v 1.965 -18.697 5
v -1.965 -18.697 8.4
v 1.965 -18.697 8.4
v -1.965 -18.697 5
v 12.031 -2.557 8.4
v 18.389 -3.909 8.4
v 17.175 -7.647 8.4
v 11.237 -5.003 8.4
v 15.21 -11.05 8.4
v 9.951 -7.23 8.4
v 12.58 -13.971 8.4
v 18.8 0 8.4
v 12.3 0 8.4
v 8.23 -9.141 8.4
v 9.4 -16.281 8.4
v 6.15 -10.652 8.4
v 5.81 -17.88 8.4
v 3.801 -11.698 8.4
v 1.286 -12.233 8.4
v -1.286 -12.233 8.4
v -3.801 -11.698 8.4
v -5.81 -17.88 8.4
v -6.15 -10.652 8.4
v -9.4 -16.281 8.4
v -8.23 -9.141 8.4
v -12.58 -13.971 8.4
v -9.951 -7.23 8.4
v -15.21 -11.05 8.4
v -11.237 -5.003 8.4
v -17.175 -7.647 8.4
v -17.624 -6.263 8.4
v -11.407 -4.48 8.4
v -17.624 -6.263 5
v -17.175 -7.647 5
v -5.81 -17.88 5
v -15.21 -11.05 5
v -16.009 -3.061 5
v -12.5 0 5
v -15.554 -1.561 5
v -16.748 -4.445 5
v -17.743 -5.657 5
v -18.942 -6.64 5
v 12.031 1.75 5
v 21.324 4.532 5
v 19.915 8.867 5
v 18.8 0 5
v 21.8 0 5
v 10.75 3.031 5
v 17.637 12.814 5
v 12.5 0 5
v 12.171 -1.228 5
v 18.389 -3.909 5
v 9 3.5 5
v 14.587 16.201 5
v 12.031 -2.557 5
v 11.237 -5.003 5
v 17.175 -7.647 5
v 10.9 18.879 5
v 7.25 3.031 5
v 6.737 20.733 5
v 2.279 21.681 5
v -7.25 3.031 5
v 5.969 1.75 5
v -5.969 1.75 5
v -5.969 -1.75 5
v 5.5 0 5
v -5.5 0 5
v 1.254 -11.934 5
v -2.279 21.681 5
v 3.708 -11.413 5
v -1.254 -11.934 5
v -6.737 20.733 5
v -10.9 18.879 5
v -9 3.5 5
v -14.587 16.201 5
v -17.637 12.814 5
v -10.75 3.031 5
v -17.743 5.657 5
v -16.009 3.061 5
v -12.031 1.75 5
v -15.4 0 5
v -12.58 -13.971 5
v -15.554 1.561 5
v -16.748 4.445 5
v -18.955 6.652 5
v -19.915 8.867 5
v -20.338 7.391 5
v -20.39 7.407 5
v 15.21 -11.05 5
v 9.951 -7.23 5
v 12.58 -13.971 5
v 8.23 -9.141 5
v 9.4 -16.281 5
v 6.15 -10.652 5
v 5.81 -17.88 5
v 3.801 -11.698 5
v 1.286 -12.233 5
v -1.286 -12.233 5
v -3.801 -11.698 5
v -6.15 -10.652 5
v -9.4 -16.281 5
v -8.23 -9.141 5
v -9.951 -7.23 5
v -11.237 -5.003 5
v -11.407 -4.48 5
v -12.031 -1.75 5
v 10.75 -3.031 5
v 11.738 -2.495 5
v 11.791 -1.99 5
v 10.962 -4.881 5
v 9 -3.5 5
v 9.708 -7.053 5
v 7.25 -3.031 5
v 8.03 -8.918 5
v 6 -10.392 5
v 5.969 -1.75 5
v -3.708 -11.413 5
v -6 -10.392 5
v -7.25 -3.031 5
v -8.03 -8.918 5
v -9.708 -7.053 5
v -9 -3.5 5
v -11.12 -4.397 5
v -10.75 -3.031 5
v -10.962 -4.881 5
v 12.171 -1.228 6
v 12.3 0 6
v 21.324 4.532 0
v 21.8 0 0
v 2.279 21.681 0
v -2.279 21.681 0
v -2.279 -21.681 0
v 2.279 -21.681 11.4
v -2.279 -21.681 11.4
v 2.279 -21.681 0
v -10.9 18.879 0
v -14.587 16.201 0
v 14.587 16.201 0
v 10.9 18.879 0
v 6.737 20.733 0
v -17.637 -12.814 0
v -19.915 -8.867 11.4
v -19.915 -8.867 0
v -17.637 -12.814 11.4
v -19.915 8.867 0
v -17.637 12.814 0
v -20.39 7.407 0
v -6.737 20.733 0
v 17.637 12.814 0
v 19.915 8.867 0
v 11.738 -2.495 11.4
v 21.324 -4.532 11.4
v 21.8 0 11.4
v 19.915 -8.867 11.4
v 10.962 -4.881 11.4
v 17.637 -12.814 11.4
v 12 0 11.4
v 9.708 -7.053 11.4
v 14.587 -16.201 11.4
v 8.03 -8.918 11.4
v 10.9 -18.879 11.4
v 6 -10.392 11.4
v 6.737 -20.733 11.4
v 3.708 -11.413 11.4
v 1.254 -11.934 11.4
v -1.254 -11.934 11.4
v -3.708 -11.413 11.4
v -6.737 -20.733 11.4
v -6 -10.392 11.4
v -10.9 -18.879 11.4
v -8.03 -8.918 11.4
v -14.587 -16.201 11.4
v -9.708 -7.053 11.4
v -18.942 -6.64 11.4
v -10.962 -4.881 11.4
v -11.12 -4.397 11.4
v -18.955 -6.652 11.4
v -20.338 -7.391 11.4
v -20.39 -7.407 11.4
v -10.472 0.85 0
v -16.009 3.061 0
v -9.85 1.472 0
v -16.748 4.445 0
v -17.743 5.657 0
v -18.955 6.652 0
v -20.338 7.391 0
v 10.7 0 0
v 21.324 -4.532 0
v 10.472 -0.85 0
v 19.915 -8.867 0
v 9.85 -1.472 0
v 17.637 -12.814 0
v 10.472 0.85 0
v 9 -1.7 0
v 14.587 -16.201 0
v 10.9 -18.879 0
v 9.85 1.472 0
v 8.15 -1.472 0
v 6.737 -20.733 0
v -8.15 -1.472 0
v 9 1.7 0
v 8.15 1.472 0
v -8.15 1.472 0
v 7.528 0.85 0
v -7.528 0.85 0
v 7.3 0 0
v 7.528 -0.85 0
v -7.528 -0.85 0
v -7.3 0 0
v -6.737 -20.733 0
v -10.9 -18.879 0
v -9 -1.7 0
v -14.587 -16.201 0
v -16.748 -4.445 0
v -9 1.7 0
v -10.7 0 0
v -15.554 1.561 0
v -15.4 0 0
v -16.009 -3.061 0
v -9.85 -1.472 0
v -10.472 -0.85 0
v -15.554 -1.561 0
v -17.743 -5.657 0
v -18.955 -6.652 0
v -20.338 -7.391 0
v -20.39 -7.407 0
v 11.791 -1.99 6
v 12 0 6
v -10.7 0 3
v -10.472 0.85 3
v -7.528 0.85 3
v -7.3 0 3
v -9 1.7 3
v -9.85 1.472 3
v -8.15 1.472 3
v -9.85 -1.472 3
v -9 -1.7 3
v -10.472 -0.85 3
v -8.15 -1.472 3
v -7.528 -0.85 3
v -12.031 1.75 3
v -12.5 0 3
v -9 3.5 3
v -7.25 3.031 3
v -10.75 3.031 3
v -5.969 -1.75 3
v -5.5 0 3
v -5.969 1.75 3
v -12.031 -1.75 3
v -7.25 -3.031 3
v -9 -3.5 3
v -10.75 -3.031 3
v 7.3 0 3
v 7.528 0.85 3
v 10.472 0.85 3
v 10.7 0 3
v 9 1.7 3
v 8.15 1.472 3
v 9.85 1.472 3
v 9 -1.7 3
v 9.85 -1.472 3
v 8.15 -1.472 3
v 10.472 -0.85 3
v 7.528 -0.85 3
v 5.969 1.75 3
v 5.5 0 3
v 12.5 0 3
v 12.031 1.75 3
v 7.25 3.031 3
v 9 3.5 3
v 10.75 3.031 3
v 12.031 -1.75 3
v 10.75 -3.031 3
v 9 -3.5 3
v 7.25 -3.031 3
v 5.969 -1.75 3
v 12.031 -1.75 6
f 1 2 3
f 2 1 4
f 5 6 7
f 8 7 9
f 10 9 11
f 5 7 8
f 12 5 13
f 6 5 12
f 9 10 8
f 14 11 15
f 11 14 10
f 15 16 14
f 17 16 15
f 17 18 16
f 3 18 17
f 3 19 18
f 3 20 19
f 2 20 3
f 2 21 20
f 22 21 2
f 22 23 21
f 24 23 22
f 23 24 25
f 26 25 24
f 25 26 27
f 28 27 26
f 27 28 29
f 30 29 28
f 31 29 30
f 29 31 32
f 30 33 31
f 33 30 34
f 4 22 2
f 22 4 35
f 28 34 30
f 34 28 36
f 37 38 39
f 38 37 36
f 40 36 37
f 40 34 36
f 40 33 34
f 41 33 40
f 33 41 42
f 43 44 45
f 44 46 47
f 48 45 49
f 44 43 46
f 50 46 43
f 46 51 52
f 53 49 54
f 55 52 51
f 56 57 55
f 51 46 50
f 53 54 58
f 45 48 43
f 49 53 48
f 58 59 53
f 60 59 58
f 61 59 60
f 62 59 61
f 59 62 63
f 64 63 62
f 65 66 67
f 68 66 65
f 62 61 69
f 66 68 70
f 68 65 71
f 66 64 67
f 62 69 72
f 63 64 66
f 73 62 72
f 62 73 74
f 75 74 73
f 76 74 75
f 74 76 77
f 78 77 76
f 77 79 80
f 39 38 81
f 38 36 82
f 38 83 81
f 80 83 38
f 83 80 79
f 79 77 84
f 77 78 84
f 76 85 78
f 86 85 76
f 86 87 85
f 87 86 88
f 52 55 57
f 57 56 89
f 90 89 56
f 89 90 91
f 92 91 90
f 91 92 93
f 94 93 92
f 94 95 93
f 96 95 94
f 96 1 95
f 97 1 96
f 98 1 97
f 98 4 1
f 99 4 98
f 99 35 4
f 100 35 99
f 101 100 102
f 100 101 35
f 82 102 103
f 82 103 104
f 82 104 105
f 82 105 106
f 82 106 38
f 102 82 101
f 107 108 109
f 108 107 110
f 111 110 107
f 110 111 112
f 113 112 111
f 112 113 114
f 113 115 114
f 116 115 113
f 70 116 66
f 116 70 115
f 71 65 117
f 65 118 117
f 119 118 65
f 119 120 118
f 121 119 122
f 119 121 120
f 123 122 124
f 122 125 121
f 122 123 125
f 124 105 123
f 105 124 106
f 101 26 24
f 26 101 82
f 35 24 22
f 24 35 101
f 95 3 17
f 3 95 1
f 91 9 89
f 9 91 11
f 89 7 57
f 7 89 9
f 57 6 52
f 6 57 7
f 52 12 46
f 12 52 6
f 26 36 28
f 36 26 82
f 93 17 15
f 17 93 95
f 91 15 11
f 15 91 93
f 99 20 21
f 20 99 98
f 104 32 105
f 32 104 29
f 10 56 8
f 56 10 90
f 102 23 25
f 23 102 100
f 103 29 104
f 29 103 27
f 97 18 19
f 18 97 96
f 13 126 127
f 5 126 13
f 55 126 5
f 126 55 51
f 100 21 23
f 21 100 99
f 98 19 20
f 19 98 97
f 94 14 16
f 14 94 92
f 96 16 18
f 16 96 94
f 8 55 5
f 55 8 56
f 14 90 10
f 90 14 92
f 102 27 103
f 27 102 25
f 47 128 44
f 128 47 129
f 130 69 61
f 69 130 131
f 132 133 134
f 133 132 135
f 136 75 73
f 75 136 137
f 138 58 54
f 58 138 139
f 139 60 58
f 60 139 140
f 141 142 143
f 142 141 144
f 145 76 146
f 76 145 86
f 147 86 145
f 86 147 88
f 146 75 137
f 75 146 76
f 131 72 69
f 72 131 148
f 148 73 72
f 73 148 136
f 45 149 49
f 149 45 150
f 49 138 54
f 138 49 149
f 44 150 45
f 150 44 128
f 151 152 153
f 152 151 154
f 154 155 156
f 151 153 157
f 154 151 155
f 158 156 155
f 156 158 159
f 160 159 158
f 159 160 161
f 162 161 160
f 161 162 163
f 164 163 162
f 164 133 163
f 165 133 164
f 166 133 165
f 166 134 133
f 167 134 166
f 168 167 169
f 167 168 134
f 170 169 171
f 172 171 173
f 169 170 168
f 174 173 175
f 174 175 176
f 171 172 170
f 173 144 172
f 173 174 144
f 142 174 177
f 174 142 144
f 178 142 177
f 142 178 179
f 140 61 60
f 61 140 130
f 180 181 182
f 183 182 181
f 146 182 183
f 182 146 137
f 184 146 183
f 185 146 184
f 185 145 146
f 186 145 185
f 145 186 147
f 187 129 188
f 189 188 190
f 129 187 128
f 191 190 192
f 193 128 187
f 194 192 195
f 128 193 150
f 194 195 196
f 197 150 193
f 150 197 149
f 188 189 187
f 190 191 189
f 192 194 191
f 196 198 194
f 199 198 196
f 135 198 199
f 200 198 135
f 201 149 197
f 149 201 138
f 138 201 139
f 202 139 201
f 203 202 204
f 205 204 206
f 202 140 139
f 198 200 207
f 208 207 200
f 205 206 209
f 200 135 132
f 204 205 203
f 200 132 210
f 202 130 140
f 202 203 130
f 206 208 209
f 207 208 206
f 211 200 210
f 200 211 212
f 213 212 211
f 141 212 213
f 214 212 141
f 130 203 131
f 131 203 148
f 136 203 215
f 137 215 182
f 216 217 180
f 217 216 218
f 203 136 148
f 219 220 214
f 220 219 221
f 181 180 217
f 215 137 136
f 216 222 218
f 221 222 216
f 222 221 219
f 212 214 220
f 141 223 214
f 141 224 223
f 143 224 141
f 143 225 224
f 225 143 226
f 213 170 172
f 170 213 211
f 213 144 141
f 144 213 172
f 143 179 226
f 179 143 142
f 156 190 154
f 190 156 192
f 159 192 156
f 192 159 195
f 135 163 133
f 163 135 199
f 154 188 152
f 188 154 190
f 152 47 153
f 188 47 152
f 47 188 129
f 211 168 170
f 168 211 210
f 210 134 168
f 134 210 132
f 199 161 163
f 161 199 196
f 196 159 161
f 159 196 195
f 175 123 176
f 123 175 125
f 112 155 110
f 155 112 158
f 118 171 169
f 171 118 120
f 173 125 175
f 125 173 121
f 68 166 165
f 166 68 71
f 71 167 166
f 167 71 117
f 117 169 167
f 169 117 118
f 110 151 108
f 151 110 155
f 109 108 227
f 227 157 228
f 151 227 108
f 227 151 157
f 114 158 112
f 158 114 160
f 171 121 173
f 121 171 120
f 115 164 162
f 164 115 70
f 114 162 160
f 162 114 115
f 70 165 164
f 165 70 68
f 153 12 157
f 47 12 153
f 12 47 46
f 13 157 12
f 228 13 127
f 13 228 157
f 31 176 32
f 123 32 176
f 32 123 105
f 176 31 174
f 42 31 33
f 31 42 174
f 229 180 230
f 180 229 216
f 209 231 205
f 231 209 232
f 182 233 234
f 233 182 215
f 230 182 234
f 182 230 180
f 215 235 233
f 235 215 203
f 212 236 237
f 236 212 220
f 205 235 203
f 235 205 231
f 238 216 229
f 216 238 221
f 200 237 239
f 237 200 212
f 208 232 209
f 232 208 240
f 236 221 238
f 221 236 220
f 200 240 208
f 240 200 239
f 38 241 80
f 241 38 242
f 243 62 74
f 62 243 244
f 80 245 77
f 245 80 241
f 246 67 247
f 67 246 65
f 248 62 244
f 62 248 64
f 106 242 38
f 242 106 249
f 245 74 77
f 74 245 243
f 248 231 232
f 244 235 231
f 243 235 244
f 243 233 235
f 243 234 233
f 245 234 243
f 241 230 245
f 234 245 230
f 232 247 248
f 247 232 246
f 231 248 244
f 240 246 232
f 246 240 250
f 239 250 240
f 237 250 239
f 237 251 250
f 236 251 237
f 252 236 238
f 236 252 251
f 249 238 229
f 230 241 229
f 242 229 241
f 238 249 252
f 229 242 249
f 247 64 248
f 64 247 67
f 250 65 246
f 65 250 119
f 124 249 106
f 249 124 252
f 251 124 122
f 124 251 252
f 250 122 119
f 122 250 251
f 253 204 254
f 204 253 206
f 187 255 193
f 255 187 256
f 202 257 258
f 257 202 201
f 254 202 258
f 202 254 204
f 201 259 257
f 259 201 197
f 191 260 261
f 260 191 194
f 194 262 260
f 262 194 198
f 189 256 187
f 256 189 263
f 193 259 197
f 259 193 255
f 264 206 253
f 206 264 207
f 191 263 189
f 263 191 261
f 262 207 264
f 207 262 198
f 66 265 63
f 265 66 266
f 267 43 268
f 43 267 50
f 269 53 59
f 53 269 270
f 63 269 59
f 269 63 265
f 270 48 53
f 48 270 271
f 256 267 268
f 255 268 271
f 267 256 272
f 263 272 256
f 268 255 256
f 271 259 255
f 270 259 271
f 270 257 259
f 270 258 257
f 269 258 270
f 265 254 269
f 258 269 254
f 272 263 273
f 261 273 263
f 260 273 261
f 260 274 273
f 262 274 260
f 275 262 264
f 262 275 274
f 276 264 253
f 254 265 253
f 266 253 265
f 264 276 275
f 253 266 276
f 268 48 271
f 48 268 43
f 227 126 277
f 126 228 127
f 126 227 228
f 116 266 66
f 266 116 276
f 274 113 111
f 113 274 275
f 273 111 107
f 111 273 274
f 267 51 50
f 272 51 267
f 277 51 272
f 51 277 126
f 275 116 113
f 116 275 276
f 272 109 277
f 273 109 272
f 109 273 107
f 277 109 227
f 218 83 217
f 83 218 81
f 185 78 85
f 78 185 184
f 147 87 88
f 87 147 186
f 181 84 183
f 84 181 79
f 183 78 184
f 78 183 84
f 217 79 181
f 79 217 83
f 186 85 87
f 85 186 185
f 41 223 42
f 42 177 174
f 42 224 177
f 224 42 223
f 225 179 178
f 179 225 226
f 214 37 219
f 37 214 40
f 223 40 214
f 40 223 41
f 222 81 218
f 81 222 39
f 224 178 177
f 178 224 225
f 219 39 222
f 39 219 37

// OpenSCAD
// Seringue Douille.scad
// Tous droits réservés www.mon-fablab.fr - 2017
// Licence GPLv3 - usage NON COMMERCIAL uniquement
// Contributeurs : X. HINAULT, Y. LE GAL

ep = 3;
spt = 18;

rpis = 32/2;
hpis = 2;
j = 0.7;



mirror([1,0,0]) difference(){
	
		cylinder(r=rpis+j*4+ep, h=ep+2+j+hpis+j+ep);
		echo(rpis+j*4+ep);
	
		difference(){
			translate([0,0,ep+2]) cylinder(r=rpis+j*4, h=j+hpis+j);
			translate([0,0,ep+2]) cylinder(r=rpis-4+0.3, h=j+hpis+j);
		}
		
		translate([0,0,ep+2])  cylinder(r=rpis-4, h=ep+2+j+hpis+j+ep);
	
		translate([0,30,ep+2+5]) cube([60,60,10], center=true);
		translate([0,30,ep+2+5]) rotate([0,0,-16]) cube([60,60,10], center=true);
		
	
		// vis
		
		translate([spt/2,0,-1]) cylinder(r=1.7, h=10, $fn=12);
		translate([spt/2,0,ep]) cylinder(r=3.5, h=3, $fn=12);
	
		translate([-spt/2,0,-1]) cylinder(r=1.7, h=10, $fn=12);
		translate([-spt/2,0,ep]) cylinder(r=3.5, h=3, $fn=12);
		
		//
		translate([rpis+j*2+ep+3,0,-1]) cylinder(r=4+4, h=20, $fn=32);
	
}
